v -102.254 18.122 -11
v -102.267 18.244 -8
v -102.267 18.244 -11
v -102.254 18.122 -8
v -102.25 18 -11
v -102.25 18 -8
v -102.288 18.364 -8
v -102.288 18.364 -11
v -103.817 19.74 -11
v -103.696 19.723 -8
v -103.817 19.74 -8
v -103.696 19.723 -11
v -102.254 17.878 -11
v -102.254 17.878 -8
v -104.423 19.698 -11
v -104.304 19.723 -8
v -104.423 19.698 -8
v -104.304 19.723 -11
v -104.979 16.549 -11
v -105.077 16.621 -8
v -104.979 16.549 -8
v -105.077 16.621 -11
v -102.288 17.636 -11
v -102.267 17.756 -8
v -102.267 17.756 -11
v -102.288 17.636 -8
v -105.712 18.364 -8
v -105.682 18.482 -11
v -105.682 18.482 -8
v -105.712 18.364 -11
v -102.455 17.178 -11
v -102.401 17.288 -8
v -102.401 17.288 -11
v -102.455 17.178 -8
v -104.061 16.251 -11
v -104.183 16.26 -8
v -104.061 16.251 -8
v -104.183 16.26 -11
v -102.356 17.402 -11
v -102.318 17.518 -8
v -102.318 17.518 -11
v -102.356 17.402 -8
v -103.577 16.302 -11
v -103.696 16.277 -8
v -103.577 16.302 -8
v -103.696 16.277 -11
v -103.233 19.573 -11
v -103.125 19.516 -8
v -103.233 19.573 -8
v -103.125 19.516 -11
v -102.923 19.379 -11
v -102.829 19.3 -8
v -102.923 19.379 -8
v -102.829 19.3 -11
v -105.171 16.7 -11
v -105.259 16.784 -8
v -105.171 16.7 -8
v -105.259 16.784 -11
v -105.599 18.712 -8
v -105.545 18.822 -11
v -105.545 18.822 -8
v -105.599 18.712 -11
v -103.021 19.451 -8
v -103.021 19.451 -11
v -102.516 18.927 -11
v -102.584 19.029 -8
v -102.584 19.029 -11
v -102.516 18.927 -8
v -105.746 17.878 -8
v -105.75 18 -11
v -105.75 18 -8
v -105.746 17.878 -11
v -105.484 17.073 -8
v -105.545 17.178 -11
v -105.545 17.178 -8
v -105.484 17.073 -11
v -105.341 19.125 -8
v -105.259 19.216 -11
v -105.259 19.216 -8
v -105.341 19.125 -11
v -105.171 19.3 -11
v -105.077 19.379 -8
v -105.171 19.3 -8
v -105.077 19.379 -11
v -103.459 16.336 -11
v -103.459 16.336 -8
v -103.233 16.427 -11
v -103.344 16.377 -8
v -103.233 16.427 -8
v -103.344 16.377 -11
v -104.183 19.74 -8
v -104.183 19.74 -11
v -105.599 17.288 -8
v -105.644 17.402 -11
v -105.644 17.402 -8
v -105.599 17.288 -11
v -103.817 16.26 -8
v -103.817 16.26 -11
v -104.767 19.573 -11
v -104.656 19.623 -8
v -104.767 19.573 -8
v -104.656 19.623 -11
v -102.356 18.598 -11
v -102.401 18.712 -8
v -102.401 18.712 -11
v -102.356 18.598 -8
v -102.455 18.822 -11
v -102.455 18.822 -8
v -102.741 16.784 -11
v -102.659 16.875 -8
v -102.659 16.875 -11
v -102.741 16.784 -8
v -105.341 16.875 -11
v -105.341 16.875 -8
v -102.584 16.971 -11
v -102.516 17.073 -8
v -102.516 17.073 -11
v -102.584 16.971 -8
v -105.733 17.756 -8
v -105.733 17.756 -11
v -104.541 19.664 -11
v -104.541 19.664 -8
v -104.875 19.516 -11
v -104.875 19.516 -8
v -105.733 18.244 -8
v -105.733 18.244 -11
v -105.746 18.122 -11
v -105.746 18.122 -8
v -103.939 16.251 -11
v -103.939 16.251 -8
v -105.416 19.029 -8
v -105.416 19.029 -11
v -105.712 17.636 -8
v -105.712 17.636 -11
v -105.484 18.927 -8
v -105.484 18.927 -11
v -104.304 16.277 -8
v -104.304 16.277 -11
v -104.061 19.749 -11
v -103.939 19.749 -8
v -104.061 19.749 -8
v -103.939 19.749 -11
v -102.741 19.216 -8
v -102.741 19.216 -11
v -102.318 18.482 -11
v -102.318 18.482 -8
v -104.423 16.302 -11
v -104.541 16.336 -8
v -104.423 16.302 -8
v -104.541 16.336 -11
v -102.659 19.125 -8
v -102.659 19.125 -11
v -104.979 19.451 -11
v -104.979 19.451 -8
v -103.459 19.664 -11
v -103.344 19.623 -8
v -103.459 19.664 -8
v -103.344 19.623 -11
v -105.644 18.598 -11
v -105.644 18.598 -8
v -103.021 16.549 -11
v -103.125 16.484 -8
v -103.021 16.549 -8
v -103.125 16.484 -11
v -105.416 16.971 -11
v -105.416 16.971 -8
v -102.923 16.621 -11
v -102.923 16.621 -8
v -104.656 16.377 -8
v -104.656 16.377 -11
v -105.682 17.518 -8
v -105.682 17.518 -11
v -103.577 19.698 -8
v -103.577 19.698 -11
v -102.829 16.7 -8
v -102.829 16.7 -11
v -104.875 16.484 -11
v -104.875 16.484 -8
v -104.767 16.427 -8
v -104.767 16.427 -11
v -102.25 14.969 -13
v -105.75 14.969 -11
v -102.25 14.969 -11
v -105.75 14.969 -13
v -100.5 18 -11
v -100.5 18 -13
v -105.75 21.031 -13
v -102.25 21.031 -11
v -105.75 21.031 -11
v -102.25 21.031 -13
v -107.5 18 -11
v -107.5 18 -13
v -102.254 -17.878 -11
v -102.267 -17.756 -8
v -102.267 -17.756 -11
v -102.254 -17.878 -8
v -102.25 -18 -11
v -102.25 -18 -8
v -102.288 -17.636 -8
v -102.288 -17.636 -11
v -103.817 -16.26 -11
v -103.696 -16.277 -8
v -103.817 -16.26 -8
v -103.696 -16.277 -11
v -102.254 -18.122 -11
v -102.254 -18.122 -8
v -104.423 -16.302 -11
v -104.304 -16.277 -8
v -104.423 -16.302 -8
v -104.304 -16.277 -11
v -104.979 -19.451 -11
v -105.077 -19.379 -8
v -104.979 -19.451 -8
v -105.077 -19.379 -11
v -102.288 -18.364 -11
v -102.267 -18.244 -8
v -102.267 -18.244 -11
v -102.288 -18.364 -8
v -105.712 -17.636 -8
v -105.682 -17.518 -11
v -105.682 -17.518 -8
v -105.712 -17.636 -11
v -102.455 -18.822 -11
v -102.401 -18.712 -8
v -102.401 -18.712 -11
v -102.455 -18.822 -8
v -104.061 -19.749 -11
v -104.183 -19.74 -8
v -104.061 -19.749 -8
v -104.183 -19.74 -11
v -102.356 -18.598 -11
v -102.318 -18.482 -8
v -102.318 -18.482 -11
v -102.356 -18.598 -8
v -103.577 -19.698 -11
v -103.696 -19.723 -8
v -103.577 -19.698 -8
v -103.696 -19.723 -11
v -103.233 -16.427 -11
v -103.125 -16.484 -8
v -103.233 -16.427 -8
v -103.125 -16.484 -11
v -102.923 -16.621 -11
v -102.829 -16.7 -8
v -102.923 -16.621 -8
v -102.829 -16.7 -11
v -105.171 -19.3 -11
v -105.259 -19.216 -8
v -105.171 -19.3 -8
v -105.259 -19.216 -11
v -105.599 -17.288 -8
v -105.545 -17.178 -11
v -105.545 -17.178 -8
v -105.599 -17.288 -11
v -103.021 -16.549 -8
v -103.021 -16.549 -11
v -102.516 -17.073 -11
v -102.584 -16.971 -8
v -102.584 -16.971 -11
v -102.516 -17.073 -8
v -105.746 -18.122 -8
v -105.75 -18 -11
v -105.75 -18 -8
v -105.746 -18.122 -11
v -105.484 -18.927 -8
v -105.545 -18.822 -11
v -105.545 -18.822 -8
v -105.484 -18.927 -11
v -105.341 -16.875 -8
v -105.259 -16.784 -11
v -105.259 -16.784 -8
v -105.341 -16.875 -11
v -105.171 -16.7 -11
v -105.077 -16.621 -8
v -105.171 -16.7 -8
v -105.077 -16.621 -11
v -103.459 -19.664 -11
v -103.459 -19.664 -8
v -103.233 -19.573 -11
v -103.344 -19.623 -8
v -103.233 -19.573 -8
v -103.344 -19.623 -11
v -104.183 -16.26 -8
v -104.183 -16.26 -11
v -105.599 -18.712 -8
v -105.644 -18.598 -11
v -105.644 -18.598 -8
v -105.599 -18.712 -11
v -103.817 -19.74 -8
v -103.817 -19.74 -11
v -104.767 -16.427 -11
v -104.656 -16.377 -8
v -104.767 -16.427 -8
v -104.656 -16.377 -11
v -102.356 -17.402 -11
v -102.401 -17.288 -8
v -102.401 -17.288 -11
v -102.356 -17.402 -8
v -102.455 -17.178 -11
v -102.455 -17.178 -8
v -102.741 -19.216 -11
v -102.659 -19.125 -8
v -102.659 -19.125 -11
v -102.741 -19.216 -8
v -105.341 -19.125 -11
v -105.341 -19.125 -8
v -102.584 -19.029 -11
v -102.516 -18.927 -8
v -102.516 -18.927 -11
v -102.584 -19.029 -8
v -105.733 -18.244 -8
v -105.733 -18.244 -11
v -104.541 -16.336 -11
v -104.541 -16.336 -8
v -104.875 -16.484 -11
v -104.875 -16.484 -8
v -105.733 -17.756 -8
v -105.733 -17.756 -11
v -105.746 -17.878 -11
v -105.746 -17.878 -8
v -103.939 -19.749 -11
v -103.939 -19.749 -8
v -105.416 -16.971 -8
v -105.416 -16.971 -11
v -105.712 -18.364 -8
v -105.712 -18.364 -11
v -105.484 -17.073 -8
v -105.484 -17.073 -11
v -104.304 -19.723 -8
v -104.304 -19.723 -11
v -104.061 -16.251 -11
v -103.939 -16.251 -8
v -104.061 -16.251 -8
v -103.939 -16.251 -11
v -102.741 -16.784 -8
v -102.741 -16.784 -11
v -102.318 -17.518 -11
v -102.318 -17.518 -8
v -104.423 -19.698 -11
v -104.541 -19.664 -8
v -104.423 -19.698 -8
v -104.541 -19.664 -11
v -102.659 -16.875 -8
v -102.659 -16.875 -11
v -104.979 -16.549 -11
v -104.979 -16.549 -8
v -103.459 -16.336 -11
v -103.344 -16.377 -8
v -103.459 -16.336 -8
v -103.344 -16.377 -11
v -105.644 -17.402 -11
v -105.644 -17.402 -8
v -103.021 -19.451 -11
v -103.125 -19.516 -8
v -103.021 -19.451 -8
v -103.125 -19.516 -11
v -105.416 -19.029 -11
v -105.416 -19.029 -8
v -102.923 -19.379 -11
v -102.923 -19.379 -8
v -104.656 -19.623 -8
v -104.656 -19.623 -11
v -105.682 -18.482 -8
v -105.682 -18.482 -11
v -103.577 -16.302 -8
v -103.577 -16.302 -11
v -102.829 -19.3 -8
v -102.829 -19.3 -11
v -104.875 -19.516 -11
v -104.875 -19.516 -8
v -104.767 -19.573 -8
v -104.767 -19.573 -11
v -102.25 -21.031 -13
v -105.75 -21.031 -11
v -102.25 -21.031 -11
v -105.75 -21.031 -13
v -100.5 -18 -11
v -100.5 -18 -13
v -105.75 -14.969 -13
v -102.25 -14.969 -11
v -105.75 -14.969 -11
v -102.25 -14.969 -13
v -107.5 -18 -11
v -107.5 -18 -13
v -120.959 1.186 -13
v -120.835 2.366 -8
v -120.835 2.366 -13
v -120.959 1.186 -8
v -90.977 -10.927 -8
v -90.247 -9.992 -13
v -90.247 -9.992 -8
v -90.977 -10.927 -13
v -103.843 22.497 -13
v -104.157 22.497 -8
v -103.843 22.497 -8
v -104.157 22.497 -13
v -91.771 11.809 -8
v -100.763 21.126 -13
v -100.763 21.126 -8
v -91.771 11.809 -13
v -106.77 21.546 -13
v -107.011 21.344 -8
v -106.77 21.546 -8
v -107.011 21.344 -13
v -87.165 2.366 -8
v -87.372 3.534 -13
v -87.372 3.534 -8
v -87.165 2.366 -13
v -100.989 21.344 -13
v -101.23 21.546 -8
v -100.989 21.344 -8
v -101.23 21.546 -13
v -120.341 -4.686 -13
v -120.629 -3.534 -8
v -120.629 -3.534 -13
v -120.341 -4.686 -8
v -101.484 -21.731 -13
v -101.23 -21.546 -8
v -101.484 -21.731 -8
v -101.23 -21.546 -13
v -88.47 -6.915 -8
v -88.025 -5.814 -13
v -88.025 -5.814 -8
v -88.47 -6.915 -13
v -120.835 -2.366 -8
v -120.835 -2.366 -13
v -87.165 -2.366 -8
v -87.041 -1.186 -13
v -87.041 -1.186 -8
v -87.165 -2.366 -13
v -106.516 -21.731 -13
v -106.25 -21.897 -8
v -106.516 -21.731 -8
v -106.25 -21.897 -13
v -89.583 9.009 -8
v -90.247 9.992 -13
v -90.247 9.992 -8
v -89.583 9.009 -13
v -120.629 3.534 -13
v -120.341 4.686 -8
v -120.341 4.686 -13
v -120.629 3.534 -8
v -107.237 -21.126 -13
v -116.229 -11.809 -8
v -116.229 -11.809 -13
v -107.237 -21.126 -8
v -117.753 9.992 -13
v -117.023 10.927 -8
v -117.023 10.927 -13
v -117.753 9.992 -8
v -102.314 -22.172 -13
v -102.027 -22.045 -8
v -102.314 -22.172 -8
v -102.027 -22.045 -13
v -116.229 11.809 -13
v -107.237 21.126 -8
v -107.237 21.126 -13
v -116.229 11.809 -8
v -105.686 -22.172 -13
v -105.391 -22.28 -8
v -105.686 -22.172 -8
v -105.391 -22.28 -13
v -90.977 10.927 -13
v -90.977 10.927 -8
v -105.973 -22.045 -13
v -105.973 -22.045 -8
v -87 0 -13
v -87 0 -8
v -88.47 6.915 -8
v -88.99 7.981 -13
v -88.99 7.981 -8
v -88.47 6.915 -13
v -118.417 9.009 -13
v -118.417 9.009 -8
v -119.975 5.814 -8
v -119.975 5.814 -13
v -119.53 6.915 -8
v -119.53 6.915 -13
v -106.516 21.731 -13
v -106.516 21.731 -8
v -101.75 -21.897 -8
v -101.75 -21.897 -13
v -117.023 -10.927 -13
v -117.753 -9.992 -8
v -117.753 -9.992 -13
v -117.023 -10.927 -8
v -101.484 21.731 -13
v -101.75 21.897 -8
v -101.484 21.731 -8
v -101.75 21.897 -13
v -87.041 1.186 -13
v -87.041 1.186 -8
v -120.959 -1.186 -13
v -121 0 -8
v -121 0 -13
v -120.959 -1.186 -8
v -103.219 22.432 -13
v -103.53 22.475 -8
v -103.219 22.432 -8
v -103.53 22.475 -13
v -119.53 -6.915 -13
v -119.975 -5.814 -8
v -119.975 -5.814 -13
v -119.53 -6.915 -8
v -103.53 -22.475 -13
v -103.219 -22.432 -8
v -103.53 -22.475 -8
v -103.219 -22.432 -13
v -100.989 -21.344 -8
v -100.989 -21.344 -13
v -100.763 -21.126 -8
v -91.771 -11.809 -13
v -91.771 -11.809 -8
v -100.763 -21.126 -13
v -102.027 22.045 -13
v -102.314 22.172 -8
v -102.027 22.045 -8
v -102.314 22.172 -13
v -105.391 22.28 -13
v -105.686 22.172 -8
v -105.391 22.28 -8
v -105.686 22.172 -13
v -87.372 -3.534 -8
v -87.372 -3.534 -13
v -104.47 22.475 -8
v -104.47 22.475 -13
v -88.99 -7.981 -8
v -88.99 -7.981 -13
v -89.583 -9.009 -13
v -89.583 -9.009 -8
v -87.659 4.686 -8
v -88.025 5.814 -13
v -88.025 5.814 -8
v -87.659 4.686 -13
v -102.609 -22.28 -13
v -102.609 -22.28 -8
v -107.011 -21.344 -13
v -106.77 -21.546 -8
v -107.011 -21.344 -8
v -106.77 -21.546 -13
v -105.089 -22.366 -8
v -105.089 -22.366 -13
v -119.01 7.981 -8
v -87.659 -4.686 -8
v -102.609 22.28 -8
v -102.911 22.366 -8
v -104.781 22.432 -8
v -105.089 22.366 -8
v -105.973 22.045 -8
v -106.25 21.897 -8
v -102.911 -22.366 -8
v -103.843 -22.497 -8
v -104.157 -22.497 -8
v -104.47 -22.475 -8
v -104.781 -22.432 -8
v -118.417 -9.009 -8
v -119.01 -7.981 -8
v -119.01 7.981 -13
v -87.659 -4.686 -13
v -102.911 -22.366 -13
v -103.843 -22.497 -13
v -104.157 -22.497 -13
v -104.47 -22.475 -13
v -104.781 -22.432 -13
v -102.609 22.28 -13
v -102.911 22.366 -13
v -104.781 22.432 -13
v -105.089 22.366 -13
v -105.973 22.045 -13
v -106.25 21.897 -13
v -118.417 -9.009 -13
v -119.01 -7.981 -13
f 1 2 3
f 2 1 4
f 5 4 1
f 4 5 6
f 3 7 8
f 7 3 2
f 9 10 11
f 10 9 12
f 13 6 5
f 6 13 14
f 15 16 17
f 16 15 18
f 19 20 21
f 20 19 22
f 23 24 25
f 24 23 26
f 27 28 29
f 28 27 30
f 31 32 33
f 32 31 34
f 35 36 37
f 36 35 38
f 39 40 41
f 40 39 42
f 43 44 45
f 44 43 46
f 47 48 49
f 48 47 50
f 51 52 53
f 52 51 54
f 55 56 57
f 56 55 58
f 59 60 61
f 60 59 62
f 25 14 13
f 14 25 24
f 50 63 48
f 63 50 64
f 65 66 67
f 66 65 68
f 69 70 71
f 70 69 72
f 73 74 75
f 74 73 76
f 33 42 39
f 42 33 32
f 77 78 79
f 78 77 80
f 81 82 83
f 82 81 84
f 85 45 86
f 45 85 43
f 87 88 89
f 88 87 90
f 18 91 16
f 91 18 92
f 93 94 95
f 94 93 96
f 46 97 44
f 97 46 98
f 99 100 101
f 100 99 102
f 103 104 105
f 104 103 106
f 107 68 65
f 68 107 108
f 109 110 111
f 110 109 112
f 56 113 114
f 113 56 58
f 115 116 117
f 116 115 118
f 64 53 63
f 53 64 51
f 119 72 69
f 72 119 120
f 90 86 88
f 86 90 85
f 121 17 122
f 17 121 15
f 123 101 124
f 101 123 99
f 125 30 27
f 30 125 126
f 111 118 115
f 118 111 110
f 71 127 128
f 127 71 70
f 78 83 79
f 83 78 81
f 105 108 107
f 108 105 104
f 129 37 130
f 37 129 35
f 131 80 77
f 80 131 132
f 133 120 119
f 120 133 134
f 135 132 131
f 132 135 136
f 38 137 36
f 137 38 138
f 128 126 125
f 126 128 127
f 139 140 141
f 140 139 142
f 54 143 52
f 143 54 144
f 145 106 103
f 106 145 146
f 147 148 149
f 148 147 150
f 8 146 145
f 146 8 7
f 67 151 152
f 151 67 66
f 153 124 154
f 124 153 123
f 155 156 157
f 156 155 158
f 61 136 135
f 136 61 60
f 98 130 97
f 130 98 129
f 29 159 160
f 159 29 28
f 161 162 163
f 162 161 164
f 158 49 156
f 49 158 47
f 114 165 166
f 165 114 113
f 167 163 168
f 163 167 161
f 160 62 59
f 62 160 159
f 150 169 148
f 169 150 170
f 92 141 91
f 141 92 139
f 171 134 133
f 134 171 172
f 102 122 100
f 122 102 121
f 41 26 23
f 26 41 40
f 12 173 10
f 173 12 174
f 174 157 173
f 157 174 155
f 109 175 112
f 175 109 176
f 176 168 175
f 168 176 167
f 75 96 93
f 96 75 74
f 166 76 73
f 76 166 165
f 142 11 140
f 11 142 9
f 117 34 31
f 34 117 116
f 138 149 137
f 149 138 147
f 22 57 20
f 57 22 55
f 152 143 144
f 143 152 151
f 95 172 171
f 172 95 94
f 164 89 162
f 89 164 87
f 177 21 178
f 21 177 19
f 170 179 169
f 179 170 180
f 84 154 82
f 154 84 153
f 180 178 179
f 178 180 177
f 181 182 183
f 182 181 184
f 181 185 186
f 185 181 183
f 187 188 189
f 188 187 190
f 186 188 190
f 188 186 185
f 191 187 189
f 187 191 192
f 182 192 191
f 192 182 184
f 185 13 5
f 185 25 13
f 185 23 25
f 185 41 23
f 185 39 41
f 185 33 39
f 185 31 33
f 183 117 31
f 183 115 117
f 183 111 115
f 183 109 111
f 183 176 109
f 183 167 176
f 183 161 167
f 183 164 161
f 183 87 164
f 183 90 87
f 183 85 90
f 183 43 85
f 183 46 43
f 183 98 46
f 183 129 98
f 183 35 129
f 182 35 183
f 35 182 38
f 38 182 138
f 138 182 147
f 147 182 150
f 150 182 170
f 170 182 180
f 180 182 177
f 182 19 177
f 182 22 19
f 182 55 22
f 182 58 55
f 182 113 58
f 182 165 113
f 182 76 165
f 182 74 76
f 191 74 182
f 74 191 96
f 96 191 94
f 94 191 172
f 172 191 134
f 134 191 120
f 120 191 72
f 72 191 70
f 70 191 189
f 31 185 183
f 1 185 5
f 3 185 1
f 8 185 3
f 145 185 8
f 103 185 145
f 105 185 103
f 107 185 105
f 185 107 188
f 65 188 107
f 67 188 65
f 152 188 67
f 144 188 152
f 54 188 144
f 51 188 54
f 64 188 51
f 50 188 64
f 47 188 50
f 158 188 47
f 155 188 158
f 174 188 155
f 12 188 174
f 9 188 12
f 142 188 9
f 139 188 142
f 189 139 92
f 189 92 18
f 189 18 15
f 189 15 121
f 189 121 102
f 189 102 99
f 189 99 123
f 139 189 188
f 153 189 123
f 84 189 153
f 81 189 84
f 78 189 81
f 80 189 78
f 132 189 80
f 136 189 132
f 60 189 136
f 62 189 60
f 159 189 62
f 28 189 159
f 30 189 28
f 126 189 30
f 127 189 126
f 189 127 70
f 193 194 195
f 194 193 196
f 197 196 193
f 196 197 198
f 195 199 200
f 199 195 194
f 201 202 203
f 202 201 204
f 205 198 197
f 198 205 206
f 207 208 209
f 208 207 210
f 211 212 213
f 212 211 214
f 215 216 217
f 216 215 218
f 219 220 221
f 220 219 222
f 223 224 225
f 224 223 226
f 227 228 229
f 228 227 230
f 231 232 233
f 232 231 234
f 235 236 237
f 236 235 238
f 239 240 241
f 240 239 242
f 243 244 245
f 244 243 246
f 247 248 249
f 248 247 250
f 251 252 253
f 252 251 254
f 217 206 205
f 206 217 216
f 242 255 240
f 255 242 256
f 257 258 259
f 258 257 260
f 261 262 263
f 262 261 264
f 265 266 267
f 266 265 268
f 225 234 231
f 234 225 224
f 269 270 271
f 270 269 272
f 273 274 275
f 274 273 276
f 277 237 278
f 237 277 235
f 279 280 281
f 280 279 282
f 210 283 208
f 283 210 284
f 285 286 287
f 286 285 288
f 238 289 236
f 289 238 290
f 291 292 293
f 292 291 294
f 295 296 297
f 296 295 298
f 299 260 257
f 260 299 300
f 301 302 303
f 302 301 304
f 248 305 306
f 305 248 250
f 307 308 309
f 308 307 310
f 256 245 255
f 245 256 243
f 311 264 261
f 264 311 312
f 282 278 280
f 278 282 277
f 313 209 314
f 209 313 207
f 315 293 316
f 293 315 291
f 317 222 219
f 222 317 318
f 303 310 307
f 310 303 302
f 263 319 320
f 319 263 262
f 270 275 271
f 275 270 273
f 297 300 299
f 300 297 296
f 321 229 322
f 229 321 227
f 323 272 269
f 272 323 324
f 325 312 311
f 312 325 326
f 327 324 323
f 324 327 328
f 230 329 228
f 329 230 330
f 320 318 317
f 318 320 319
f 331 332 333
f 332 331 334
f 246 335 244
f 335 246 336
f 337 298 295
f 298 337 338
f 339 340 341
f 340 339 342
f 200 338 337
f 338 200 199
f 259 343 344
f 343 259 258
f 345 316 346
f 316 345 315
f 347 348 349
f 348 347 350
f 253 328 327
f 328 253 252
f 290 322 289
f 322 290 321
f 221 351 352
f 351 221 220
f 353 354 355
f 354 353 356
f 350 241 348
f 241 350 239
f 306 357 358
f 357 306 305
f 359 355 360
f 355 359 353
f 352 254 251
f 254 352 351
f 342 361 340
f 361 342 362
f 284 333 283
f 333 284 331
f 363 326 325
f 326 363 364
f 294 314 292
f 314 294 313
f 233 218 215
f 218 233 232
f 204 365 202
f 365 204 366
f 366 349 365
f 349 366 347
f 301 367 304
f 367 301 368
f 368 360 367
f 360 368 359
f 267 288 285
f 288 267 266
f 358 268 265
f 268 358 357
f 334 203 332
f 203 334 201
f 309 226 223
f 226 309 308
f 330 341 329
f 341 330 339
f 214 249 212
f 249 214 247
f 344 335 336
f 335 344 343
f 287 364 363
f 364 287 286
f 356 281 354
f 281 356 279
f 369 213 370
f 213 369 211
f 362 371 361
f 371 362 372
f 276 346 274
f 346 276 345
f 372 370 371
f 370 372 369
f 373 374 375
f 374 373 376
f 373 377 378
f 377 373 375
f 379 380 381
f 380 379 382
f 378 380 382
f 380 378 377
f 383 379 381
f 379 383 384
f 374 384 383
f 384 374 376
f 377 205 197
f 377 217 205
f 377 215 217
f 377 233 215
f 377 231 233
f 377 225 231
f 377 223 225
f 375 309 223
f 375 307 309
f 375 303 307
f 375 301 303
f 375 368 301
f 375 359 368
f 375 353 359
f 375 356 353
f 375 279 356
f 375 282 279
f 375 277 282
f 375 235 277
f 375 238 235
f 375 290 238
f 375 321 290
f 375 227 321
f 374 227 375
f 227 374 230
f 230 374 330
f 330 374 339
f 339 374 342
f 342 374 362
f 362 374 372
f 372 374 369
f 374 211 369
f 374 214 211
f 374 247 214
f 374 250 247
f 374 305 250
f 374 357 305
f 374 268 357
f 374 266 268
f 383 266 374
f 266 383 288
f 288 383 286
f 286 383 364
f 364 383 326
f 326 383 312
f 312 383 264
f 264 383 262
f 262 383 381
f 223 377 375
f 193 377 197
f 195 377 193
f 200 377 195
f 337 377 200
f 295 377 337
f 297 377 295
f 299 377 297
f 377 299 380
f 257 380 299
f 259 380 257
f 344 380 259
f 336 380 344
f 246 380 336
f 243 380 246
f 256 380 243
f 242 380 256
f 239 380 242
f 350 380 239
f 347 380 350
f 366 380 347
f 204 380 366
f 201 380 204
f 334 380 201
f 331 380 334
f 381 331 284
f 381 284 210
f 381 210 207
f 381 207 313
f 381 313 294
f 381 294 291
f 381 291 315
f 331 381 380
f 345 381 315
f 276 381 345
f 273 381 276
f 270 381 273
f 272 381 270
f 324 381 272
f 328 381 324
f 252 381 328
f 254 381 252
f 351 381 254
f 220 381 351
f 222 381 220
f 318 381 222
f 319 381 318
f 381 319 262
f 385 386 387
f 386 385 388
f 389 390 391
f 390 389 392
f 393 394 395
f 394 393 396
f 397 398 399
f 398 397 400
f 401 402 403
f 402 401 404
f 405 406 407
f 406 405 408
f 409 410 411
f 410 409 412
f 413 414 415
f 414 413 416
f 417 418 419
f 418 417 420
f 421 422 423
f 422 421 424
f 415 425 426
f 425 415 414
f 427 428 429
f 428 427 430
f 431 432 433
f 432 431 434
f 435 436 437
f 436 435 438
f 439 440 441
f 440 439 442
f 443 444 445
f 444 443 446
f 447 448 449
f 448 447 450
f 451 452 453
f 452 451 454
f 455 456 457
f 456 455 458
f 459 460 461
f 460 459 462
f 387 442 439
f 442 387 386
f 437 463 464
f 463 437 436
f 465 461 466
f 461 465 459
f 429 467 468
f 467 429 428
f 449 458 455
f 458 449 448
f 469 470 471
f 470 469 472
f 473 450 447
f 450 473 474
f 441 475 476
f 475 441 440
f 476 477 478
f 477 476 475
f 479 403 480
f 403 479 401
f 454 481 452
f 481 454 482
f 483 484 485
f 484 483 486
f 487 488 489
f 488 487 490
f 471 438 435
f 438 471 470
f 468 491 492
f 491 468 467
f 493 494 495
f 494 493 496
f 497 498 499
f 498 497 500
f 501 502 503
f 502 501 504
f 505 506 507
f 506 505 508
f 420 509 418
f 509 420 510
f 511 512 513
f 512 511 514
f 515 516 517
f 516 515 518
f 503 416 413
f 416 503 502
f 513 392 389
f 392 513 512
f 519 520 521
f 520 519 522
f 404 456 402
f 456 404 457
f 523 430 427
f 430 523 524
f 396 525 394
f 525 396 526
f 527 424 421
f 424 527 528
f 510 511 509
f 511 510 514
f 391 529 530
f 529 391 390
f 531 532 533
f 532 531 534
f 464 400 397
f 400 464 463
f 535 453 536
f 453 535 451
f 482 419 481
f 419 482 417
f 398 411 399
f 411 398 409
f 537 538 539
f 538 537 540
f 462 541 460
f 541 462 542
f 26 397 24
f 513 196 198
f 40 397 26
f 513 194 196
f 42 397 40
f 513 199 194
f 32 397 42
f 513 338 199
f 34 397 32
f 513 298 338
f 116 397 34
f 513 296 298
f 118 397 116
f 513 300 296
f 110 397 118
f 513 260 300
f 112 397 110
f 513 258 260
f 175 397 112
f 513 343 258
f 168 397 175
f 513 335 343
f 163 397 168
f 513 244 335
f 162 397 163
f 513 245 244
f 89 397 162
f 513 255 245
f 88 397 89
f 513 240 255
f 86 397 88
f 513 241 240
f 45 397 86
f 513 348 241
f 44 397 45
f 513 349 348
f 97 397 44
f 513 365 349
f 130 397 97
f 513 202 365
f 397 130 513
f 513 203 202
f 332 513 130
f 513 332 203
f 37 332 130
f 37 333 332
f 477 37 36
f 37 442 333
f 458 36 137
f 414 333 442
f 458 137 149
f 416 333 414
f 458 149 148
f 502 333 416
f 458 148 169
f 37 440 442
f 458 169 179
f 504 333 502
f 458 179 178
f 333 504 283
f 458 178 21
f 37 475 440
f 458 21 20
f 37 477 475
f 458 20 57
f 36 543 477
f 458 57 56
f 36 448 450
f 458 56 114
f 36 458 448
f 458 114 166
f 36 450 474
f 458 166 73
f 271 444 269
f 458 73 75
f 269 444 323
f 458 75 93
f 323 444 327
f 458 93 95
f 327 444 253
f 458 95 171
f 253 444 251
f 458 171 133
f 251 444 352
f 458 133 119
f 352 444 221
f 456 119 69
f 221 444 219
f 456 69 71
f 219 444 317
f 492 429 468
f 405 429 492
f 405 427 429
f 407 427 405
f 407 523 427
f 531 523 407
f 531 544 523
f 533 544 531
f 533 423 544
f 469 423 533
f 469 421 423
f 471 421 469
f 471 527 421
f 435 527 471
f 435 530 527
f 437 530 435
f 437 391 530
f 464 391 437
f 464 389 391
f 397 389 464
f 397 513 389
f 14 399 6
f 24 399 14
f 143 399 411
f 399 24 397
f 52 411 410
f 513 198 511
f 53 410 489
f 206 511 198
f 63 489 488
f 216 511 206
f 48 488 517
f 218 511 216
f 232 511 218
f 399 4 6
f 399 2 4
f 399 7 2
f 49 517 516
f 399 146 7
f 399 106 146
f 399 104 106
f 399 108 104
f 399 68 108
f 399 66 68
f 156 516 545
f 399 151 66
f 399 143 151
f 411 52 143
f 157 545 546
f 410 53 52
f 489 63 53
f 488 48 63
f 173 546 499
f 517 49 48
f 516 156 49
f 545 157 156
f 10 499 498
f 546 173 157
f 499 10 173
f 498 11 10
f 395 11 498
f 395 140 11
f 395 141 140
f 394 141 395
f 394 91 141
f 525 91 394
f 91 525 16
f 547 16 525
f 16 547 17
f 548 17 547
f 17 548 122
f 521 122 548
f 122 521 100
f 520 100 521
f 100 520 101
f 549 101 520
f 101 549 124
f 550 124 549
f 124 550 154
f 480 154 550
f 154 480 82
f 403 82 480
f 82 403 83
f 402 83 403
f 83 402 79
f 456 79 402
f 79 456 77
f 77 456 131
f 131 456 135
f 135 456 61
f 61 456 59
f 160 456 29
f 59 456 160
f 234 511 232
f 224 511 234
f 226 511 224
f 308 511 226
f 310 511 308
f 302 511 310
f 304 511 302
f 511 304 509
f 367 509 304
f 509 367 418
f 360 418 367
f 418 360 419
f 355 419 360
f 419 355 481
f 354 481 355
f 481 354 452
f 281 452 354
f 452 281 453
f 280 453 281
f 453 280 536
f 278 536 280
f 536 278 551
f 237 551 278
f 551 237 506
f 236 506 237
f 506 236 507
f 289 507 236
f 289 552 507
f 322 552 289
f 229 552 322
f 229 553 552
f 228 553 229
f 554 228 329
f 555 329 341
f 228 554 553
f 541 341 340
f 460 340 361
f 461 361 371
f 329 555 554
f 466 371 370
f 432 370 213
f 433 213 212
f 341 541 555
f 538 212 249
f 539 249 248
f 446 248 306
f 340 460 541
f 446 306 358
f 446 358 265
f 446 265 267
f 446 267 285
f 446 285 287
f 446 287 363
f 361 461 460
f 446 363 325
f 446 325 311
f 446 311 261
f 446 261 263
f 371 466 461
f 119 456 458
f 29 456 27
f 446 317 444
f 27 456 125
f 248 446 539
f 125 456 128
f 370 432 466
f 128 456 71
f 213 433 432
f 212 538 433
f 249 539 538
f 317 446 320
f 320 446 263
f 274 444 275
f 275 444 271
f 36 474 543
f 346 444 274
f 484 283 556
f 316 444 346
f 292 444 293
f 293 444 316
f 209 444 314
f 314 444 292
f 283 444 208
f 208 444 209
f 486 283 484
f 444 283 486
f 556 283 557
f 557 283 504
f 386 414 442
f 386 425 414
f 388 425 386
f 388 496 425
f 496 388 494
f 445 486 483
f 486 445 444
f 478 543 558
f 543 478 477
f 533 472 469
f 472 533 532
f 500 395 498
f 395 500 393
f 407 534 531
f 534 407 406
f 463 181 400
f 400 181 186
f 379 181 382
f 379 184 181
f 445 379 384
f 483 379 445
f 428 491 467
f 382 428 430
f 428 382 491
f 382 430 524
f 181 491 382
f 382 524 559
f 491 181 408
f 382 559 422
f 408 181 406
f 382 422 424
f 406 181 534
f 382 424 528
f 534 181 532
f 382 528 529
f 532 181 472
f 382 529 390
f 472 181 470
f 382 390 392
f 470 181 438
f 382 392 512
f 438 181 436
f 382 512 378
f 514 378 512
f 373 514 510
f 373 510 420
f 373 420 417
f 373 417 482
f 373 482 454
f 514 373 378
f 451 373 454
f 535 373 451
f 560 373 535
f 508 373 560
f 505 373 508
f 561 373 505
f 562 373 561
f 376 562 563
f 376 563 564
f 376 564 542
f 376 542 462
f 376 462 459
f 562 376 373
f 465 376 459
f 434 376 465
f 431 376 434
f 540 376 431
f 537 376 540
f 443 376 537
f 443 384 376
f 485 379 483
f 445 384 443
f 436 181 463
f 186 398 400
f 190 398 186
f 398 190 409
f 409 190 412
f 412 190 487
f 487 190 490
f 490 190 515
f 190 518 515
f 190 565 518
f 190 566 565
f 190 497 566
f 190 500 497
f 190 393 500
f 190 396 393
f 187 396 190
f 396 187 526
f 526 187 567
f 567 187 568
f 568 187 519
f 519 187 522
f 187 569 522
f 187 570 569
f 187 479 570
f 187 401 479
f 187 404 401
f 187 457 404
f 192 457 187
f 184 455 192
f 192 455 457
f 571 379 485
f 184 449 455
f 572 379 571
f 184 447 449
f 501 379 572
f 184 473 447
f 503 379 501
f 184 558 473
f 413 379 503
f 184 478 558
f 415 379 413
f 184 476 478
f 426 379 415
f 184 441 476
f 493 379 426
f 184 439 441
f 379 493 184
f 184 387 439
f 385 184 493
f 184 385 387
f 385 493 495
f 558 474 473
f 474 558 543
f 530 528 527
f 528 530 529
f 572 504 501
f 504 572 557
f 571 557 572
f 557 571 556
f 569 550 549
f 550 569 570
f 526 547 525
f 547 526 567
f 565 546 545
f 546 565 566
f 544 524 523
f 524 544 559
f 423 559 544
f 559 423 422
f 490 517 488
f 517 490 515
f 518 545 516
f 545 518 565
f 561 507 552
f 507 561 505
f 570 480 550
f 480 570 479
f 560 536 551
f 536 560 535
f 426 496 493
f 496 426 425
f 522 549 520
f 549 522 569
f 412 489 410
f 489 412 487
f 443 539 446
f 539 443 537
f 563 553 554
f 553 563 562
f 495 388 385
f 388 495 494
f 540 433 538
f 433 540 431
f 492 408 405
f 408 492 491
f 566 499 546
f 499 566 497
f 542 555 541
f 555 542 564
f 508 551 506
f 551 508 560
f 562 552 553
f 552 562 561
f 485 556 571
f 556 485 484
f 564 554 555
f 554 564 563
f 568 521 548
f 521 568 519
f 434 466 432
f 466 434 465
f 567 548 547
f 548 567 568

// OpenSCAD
$fn=90;

module m3_captive_nut_hole()
{
    translate([0,0,-50])cylinder(d=3.5,100);
    translate([0,0,0])cylinder(d=7,3,$fn=6);
}

module C()
{
    h=5;
 
    difference() {
        union() {
            // Ring
            hull() {
                translate([-104,0,0])cylinder(d=34,h);            
                translate([-104,18,0])cylinder(d=9,h);
                translate([-104,-18,0])cylinder(d=9,h);
                }
        }
        
        translate([-104,18,-1]) m3_captive_nut_hole();
        translate([-104,-18,-1]) m3_captive_nut_hole();
        
    }
 }


STL=0;
if (STL==1) {
    rotate([180,0,0])translate([0,0,-13])C();  
} else {
    translate([0,0,-13])C();  
}                          
        
        
        
